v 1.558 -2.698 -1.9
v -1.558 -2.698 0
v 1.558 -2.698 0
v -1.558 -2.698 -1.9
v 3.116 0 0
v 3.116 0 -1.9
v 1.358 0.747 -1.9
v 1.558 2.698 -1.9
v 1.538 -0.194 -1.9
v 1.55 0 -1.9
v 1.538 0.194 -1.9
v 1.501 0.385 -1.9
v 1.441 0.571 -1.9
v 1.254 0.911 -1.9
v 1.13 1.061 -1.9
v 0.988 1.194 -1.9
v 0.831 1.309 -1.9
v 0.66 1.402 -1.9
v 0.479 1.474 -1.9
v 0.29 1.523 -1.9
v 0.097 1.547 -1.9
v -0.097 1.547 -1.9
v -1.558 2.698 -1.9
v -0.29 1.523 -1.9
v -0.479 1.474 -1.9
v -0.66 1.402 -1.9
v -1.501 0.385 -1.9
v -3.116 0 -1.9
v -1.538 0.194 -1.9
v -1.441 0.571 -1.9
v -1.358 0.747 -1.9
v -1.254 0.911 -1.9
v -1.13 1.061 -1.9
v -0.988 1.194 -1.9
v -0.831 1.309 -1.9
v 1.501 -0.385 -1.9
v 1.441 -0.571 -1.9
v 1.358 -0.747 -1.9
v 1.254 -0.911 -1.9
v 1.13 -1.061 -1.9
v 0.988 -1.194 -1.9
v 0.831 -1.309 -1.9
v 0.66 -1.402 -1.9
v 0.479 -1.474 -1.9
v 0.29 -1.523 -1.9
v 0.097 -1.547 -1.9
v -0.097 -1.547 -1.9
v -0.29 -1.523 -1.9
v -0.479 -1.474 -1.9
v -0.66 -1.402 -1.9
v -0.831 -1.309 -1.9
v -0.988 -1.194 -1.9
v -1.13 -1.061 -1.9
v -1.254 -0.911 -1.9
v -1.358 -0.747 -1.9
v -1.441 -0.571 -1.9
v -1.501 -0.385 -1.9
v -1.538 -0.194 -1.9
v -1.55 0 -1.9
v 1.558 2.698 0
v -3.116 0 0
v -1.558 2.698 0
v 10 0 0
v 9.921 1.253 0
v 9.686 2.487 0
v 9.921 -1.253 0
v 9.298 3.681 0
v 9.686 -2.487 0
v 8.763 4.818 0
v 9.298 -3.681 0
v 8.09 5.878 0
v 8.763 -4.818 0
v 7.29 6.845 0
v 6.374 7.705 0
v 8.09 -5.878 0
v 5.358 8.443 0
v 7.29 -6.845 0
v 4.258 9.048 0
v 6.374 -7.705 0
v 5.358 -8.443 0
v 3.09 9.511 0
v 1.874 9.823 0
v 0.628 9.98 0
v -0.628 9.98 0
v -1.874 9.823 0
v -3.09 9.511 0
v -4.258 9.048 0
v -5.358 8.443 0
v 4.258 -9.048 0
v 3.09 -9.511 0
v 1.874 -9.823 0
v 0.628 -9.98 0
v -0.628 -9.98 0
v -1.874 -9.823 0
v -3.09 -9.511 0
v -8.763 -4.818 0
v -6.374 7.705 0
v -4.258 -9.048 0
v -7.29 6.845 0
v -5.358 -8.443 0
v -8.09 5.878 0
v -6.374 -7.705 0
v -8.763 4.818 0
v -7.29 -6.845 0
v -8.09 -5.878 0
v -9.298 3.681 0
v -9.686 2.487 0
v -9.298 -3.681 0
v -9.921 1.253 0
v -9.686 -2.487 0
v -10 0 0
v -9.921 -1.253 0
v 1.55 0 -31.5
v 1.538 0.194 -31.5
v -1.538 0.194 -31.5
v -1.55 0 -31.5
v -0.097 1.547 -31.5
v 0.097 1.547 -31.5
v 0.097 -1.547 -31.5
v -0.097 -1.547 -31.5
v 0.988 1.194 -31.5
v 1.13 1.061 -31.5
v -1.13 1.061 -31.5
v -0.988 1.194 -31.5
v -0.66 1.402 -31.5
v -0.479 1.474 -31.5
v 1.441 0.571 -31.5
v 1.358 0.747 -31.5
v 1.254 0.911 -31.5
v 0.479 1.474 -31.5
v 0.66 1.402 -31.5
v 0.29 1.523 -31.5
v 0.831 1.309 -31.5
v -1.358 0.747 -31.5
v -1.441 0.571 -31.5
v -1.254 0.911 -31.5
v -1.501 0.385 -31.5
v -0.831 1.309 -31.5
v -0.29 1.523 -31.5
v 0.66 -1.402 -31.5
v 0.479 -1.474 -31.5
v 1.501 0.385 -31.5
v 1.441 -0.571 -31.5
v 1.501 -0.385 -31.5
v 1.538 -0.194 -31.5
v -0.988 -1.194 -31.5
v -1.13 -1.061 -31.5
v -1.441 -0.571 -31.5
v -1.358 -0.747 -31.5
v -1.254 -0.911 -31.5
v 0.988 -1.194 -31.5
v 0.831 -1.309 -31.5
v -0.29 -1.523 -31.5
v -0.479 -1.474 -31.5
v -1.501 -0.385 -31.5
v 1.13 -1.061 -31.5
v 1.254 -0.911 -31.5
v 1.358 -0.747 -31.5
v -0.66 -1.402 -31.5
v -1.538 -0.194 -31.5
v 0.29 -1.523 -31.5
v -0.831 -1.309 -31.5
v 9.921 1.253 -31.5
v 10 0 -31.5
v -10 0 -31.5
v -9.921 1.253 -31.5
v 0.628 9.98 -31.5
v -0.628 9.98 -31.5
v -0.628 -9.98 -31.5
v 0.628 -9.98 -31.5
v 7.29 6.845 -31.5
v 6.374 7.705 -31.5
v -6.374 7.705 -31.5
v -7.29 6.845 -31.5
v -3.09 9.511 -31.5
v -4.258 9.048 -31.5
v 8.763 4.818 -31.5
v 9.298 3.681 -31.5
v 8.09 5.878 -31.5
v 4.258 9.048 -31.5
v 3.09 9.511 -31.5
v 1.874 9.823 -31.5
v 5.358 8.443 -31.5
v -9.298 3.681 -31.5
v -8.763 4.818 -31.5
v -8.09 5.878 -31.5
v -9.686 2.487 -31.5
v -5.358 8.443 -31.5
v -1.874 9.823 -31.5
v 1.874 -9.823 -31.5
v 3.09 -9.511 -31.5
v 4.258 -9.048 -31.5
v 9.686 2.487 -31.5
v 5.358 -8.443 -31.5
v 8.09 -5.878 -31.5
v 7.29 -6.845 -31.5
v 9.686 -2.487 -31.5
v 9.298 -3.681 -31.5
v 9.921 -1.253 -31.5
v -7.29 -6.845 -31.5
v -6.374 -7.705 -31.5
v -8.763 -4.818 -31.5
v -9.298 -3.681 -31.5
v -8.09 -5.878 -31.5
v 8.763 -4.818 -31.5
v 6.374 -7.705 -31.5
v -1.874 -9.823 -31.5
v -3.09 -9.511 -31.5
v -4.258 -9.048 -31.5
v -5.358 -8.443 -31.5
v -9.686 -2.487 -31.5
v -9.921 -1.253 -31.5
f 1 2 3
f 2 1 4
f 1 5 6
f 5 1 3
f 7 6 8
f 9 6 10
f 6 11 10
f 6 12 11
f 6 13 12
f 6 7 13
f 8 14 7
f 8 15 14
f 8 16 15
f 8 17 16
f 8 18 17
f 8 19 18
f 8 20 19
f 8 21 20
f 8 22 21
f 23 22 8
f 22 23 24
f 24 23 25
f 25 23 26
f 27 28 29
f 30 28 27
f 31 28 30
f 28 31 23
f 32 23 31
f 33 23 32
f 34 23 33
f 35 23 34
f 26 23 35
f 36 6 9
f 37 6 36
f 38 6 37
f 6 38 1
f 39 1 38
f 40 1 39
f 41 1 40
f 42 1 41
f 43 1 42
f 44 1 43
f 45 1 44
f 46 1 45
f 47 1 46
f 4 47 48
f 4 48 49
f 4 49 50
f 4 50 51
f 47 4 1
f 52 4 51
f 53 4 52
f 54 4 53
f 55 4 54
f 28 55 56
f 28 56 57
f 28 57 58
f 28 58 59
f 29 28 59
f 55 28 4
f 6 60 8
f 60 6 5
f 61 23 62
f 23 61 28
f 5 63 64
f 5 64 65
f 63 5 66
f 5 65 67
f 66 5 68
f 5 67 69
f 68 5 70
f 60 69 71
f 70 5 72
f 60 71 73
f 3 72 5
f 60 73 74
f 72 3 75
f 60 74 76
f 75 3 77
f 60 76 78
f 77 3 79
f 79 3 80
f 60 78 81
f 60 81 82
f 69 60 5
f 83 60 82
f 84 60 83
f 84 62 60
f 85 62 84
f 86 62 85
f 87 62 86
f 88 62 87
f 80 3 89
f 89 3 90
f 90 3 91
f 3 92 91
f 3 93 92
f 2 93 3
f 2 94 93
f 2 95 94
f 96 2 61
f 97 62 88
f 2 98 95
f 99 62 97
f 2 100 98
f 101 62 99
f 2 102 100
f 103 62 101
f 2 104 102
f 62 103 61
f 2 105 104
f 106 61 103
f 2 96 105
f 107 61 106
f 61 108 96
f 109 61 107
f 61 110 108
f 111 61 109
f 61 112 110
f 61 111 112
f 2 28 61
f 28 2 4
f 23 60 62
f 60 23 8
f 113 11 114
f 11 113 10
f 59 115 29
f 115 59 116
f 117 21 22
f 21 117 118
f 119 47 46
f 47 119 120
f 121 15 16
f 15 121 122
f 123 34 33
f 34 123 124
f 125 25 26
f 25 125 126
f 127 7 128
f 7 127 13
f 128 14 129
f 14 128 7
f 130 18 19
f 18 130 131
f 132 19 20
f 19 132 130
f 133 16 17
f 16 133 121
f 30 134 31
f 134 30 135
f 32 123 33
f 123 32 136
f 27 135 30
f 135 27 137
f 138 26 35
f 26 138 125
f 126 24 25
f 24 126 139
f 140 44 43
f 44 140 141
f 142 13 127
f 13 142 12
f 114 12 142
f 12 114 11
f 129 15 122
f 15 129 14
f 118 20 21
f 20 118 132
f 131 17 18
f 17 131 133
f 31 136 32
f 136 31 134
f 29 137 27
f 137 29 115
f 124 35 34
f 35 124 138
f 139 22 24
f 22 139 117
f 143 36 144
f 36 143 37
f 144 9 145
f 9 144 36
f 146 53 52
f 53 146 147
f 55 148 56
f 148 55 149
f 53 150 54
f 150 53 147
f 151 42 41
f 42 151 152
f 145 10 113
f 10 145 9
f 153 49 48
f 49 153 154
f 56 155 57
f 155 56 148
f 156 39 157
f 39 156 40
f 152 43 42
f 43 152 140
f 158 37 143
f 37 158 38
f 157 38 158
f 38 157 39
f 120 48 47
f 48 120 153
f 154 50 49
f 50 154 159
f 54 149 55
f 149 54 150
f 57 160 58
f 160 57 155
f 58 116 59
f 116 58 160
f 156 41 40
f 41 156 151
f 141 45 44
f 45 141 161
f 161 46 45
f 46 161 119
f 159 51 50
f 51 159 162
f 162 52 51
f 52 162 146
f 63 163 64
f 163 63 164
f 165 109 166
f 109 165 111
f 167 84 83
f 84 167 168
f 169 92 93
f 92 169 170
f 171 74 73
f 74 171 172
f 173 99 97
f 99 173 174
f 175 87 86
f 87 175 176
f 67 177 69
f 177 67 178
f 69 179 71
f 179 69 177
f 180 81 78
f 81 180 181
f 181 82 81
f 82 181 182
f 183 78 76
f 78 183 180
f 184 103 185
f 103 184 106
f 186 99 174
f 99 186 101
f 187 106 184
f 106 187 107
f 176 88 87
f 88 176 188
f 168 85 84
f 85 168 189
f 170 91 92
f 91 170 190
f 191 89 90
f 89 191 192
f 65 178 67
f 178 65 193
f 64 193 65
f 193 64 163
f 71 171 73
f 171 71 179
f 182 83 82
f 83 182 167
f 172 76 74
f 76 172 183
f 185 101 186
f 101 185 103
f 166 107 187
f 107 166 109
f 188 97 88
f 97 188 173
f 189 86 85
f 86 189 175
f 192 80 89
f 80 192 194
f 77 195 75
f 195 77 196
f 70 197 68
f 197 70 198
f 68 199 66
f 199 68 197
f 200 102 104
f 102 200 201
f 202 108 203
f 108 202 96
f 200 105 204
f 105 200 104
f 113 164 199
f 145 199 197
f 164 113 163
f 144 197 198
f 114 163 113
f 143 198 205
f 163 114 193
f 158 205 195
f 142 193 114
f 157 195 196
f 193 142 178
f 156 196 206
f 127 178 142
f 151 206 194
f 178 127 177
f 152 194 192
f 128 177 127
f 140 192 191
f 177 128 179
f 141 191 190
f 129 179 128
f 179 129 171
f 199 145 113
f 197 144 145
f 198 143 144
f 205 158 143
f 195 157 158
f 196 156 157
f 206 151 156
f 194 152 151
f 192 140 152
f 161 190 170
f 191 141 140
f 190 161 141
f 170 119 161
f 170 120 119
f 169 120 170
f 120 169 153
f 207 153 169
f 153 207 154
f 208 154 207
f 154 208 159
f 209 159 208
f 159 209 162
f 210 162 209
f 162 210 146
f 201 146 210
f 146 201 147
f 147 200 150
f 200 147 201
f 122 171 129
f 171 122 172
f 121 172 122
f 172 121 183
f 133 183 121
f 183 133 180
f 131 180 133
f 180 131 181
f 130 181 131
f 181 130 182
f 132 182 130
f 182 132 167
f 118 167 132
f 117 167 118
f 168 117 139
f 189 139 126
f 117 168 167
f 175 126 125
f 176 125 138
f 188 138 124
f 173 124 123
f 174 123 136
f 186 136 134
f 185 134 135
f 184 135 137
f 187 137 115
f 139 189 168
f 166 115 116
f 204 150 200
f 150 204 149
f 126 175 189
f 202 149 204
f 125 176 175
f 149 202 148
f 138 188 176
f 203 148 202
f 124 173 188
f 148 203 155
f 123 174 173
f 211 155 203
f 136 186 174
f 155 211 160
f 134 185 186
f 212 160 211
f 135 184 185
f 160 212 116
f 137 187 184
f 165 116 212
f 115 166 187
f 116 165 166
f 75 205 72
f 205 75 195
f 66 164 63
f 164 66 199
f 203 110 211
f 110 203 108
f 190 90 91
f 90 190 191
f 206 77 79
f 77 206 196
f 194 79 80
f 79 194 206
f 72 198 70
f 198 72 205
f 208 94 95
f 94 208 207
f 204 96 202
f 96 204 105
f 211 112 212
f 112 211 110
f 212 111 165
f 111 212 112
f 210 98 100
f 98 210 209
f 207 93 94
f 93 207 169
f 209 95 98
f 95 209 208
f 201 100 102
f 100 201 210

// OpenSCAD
$fn = 50;

difference() {
	union() {
		translate(v = [0, 0, -31.5]) {
			cylinder(h = 31.5, r = 10.0);
		}
	}
	union() {
		translate(v = [0, 0, 0]) {
			rotate(a = [0, 0, 0]) {
				difference() {
					union() {
						translate(v = [0, 0, -1.9]) {
							linear_extrude(height = 1.9) {
								polygon(points = [[3.1158, 0.0], [1.5579000000000005, 2.698361953111554], [-1.5578999999999994, 2.6983619531115544], [-3.1158, 3.815754496783323e-16], [-1.5579000000000014, -2.6983619531115535], [1.557899999999998, -2.6983619531115552]]);
							}
						}
					}
					union();
				}
			}
		}
		#translate(v = [0, 0, -100.0]) {
			cylinder(h = 200, r = 1.55);
		}
	}
}
